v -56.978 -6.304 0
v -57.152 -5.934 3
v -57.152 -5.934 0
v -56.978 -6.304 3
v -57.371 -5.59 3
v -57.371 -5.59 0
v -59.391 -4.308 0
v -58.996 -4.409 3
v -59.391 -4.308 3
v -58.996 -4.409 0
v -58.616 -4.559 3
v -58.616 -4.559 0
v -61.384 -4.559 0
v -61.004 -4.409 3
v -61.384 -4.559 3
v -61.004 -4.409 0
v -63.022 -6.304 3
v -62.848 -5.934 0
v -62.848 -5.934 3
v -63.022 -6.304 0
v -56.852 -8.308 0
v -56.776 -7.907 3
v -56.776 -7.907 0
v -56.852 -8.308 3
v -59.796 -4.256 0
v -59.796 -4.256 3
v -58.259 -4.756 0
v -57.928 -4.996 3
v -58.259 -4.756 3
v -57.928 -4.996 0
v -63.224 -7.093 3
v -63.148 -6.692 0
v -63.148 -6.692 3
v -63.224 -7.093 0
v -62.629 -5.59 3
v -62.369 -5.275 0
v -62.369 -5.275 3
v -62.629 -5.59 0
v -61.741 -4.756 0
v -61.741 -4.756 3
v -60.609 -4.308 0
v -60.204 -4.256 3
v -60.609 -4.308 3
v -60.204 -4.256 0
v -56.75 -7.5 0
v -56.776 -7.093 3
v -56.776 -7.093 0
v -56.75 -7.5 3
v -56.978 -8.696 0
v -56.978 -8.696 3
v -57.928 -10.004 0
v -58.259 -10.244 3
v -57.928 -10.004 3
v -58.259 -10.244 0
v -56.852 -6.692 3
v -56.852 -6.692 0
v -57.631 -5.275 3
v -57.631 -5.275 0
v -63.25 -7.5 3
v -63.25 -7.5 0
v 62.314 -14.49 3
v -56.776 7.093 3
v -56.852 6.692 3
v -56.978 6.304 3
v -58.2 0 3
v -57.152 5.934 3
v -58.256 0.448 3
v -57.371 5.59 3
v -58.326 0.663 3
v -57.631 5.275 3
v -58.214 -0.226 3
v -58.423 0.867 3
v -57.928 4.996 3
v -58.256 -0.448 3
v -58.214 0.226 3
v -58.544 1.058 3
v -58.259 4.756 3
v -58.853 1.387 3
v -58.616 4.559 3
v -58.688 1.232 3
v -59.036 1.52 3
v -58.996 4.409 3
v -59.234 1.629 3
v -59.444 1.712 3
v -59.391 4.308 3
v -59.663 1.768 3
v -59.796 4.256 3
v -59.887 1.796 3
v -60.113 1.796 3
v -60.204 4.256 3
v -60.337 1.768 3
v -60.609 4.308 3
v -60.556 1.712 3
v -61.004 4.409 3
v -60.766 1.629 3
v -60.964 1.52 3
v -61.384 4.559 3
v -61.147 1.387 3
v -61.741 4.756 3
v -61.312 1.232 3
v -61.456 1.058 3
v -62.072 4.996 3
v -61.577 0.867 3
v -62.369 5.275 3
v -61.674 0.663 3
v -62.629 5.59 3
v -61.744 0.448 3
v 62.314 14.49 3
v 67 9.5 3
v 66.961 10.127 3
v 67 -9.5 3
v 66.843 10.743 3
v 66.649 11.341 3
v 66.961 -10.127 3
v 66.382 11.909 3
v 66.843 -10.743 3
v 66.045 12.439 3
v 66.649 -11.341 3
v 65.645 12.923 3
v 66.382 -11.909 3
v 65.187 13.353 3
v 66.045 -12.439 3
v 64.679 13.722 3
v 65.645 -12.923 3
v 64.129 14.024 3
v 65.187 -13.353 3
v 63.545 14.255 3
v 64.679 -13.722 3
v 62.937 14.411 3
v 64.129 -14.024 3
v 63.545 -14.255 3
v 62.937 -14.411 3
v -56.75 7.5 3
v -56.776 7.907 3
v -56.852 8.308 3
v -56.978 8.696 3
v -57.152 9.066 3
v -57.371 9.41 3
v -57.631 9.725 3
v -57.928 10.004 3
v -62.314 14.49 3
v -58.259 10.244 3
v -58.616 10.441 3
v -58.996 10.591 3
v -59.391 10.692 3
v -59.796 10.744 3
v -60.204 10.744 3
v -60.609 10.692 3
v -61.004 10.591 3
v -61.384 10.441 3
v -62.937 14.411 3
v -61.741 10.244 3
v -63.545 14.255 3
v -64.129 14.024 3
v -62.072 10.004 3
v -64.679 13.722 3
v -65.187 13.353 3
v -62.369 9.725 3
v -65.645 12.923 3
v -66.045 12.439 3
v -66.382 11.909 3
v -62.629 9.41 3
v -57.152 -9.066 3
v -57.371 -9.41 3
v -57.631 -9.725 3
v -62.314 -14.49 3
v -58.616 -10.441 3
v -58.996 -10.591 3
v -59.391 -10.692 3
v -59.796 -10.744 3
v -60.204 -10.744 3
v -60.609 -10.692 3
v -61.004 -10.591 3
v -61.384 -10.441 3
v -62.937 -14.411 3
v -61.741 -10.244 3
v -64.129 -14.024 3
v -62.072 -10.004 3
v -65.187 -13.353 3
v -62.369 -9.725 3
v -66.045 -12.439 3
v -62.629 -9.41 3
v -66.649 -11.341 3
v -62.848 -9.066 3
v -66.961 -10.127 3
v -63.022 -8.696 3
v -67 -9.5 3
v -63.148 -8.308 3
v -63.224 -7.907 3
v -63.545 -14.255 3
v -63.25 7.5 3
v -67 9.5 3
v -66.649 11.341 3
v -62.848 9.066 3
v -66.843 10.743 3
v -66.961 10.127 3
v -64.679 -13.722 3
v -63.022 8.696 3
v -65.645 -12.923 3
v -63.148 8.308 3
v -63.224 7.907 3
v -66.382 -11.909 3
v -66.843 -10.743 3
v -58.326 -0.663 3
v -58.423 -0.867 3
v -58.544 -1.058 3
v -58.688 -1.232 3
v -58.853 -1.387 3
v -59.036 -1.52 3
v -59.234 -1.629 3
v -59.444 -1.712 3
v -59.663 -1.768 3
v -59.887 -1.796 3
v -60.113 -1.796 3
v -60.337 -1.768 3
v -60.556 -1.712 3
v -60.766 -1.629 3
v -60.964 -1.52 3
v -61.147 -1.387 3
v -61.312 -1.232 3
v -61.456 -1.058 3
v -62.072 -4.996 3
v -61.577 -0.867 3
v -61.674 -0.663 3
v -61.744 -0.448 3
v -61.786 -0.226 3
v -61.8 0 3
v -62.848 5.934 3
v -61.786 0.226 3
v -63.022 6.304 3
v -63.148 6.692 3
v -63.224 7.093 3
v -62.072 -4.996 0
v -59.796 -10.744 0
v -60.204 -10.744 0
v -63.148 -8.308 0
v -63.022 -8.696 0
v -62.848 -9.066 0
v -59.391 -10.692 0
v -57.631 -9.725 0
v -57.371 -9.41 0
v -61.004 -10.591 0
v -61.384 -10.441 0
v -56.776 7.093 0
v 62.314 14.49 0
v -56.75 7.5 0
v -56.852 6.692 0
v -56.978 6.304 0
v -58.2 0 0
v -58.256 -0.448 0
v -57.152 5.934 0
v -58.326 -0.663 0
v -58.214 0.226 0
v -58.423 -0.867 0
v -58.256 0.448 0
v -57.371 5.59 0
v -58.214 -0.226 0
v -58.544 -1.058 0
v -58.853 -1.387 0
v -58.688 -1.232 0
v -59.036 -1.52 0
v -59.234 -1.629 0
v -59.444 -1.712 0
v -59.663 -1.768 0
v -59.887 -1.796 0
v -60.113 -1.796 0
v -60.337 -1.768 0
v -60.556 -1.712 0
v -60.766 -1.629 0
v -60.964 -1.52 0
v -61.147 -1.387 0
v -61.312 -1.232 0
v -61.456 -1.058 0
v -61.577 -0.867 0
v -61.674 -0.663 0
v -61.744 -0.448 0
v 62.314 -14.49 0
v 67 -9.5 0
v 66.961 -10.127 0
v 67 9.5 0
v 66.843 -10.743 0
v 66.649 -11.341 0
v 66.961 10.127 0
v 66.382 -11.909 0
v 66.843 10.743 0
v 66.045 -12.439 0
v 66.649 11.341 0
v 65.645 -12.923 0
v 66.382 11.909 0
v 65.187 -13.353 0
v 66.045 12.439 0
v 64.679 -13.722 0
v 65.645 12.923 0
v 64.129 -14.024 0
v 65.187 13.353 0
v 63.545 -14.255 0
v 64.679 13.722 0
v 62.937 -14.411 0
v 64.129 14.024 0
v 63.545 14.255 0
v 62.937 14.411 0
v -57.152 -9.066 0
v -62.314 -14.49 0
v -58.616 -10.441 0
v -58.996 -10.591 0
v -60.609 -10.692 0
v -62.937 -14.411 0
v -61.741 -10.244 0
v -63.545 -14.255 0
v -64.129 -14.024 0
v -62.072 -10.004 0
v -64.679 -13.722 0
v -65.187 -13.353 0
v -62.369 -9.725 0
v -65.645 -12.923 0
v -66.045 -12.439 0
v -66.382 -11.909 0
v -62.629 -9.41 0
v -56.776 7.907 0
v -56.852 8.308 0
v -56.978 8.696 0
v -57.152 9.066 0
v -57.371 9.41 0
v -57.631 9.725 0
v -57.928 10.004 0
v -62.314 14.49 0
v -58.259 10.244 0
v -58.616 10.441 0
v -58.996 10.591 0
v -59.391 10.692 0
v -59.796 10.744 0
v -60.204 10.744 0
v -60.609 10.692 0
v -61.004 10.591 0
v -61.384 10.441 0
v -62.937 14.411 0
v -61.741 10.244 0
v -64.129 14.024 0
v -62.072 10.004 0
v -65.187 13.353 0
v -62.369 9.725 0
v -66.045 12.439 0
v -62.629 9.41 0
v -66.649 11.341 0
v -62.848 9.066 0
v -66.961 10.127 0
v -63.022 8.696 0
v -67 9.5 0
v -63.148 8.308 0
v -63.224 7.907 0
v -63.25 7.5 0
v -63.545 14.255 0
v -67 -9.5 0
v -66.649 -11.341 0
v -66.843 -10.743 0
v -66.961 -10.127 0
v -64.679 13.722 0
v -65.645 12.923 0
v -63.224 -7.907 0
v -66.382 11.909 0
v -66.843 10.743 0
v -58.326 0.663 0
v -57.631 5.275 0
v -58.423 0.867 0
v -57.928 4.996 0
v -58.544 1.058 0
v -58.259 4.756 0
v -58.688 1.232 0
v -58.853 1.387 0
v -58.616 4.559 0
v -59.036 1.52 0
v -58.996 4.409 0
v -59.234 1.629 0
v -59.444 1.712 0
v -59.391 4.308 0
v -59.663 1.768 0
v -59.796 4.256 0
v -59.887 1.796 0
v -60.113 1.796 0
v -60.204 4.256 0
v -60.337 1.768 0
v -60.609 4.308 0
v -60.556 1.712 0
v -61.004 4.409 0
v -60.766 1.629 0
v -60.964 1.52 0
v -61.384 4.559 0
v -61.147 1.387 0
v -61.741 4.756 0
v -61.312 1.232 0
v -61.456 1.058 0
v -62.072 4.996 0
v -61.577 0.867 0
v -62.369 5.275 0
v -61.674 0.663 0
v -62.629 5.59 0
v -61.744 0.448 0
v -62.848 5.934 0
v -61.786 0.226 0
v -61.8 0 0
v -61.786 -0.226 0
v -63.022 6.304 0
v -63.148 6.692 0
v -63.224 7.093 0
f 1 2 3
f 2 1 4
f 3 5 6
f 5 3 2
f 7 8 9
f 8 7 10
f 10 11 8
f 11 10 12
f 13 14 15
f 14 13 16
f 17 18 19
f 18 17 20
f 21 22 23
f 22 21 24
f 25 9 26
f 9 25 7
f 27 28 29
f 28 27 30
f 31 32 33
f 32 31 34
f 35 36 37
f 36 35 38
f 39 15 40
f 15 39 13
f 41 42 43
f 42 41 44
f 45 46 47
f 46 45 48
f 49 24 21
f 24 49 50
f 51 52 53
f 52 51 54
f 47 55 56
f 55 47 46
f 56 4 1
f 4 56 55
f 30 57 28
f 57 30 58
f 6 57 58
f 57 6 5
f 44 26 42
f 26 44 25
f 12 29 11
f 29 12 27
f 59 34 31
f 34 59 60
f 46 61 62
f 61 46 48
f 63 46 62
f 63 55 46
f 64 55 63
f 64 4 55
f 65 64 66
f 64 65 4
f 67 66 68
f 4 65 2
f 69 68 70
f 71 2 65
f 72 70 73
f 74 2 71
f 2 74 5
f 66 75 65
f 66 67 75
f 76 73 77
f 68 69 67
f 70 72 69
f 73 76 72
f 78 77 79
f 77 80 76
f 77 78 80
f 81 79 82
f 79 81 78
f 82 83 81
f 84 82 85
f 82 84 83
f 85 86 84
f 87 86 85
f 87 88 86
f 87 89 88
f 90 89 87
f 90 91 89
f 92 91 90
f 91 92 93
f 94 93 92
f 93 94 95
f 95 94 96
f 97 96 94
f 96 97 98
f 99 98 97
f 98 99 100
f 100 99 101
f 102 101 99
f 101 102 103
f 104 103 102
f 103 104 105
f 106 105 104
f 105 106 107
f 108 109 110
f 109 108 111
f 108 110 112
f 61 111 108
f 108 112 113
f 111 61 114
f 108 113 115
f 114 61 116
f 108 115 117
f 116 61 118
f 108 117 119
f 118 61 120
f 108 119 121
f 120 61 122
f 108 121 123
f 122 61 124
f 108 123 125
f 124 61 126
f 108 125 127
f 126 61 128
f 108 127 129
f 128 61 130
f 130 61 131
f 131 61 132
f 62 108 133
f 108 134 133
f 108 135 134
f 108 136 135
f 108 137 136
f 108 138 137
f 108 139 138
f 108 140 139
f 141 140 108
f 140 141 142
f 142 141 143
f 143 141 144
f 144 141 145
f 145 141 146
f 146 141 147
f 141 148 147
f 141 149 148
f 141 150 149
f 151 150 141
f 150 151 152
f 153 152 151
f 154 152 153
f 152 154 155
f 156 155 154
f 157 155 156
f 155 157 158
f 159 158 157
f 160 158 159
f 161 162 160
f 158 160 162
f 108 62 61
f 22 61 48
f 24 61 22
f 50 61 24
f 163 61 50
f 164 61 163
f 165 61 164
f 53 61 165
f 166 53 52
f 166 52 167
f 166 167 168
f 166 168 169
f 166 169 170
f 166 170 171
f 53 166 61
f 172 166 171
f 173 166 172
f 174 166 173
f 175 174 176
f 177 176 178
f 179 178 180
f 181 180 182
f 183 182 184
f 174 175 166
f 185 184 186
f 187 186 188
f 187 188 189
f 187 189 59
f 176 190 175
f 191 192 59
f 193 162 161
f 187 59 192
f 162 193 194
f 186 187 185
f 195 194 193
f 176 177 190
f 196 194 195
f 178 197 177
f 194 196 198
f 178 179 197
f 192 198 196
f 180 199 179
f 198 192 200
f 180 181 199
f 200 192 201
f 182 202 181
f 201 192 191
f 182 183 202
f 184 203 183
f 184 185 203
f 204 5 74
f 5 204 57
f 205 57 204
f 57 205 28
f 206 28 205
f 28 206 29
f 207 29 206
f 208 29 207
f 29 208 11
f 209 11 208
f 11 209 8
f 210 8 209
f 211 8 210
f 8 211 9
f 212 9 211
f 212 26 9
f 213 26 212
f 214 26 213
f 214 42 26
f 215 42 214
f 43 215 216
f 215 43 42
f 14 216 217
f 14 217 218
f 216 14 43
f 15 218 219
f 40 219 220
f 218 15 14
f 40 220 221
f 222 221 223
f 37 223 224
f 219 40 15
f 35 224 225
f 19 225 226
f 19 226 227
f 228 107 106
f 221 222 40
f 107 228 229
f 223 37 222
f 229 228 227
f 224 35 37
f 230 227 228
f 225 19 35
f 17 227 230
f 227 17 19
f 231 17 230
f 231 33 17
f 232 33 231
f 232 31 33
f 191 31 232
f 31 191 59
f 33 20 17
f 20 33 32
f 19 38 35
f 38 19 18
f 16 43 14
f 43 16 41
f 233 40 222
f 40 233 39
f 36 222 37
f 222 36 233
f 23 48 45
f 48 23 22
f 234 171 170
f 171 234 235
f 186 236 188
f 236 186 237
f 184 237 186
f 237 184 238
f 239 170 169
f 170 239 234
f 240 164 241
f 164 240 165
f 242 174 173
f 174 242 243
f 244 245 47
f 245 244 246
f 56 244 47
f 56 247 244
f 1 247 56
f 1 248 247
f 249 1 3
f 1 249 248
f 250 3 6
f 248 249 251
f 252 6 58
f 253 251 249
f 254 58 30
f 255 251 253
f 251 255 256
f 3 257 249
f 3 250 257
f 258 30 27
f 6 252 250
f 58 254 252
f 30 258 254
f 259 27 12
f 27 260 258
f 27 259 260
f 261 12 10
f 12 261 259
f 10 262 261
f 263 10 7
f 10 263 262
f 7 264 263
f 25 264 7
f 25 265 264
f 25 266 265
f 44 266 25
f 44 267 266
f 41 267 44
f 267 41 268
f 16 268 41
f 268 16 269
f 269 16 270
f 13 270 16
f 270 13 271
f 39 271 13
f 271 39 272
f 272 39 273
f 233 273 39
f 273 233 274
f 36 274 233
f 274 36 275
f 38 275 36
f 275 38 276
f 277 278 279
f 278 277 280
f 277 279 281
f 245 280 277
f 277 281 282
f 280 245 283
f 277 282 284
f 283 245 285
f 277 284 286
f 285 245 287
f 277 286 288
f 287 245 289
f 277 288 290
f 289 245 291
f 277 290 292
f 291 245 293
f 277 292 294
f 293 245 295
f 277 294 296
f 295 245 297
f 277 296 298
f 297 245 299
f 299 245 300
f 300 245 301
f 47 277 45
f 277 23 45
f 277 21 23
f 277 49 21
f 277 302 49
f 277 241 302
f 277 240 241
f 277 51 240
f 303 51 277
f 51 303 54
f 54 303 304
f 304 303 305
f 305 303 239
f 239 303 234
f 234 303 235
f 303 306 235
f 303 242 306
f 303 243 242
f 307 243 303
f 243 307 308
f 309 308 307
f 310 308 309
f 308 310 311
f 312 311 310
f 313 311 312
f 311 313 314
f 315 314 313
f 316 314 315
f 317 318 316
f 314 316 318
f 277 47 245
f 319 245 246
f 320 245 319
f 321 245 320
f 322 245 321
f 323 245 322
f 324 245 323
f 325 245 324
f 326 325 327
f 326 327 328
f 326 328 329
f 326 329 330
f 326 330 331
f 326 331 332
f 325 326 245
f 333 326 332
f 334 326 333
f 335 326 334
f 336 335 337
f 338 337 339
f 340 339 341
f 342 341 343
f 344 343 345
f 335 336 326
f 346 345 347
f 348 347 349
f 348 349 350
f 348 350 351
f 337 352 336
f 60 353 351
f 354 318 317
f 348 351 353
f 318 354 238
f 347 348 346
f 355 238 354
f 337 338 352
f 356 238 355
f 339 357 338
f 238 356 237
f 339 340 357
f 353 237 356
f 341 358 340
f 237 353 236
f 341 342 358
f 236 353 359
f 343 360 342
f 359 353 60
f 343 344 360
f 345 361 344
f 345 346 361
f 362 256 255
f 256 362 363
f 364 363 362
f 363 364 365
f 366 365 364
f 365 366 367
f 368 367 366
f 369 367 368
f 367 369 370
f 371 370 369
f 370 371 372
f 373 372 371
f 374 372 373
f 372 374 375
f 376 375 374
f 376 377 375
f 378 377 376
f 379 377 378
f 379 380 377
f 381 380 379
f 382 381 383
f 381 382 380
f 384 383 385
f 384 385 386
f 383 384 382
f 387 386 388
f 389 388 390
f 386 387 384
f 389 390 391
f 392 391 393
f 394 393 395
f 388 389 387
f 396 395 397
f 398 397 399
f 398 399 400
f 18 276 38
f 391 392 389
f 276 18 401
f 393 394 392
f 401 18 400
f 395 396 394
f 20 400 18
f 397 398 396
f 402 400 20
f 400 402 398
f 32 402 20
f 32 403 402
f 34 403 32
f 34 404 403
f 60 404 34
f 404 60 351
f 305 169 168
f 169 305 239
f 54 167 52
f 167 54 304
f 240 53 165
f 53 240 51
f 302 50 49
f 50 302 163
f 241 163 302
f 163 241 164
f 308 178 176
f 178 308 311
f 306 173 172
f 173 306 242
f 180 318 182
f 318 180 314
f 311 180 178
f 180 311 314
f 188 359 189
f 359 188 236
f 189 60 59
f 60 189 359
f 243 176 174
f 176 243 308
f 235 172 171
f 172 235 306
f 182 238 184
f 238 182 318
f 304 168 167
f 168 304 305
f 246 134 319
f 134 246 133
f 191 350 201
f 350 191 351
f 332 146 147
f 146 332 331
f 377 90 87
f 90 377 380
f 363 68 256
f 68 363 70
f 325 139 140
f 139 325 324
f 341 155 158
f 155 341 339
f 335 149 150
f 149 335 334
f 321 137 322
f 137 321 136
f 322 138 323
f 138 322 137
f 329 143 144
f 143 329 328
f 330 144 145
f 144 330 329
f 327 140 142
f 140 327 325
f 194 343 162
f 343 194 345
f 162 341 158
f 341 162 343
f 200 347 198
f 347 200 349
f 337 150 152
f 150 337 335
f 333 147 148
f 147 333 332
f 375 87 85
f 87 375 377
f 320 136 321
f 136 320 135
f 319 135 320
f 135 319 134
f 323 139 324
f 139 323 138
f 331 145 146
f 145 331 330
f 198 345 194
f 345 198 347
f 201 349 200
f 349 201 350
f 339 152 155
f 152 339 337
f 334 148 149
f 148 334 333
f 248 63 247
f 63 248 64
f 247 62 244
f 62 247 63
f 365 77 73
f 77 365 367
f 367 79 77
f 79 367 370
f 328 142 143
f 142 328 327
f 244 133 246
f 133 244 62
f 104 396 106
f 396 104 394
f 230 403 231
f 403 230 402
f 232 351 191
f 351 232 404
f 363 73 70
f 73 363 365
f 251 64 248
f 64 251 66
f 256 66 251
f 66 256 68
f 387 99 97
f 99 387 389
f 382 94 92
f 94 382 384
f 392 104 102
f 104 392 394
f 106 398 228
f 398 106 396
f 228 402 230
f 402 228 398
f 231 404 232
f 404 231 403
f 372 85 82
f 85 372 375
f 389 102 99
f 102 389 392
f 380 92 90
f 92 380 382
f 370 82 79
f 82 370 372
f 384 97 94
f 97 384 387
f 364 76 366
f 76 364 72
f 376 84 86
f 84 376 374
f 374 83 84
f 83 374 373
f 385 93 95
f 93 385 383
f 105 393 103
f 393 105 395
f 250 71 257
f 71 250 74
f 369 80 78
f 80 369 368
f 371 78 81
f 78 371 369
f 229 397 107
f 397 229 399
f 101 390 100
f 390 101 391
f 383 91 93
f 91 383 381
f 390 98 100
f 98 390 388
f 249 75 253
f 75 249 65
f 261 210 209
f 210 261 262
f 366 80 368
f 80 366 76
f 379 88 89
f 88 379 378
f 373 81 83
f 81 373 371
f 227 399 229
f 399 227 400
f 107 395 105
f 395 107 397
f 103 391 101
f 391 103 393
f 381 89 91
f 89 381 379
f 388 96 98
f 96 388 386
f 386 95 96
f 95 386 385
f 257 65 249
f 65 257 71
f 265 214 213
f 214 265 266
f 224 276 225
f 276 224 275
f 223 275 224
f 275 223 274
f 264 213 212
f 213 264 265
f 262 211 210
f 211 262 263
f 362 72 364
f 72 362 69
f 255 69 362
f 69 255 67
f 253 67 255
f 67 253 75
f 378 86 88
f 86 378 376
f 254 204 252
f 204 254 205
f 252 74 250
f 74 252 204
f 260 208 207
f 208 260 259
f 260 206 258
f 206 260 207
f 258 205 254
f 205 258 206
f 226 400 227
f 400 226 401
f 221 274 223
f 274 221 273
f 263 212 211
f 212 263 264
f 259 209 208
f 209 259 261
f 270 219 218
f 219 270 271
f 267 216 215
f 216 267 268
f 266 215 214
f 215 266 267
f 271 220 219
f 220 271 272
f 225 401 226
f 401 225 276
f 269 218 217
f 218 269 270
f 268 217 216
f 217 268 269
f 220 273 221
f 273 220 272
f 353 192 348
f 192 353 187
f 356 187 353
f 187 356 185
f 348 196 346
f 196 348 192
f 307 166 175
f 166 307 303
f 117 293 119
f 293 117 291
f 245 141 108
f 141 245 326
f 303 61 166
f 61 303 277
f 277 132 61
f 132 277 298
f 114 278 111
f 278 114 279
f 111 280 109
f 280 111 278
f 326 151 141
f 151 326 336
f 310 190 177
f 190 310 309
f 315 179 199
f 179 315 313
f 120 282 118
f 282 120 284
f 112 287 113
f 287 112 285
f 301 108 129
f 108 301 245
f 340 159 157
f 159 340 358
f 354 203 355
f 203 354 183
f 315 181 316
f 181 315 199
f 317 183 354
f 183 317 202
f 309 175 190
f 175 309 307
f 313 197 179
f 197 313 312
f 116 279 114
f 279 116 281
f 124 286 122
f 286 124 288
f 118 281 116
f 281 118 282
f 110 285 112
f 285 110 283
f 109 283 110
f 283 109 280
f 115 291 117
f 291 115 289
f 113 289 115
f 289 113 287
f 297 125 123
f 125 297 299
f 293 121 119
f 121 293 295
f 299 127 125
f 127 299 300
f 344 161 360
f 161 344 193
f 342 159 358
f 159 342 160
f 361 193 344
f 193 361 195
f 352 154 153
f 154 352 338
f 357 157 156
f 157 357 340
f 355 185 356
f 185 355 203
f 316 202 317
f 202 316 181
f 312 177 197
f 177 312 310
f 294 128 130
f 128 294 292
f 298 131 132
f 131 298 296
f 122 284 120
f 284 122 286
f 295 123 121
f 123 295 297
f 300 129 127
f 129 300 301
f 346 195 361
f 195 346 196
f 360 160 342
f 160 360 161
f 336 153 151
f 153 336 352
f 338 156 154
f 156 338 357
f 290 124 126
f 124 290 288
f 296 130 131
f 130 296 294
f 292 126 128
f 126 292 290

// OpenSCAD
$fn = 50;


difference() {
	union() {
		hull() {
			translate(v = [-62.0000000000, 9.5000000000, 0]) {
				cylinder(h = 3, r = 5);
			}
			translate(v = [62.0000000000, 9.5000000000, 0]) {
				cylinder(h = 3, r = 5);
			}
			translate(v = [-62.0000000000, -9.5000000000, 0]) {
				cylinder(h = 3, r = 5);
			}
			translate(v = [62.0000000000, -9.5000000000, 0]) {
				cylinder(h = 3, r = 5);
			}
		}
	}
	union() {
		translate(v = [-60.0000000000, -7.5000000000, 0]) {
			cylinder(h = 3, r = 3.2500000000);
		}
		translate(v = [-60.0000000000, 7.5000000000, 0]) {
			cylinder(h = 3, r = 3.2500000000);
		}
		translate(v = [-60.0000000000, -7.5000000000, 0]) {
			cylinder(h = 3, r = 1.8000000000);
		}
		translate(v = [-60.0000000000, 0.0000000000, 0]) {
			cylinder(h = 3, r = 1.8000000000);
		}
		translate(v = [-60.0000000000, 7.5000000000, 0]) {
			cylinder(h = 3, r = 1.8000000000);
		}
		translate(v = [-60.0000000000, -7.5000000000, 0]) {
			cylinder(h = 3, r = 1.8000000000);
		}
		translate(v = [-60.0000000000, 0.0000000000, 0]) {
			cylinder(h = 3, r = 1.8000000000);
		}
		translate(v = [-60.0000000000, 7.5000000000, 0]) {
			cylinder(h = 3, r = 1.8000000000);
		}
		translate(v = [-60.0000000000, -7.5000000000, 0]) {
			cylinder(h = 3, r = 1.8000000000);
		}
		translate(v = [-60.0000000000, 0.0000000000, 0]) {
			cylinder(h = 3, r = 1.8000000000);
		}
		translate(v = [-60.0000000000, 7.5000000000, 0]) {
			cylinder(h = 3, r = 1.8000000000);
		}
	}
}
